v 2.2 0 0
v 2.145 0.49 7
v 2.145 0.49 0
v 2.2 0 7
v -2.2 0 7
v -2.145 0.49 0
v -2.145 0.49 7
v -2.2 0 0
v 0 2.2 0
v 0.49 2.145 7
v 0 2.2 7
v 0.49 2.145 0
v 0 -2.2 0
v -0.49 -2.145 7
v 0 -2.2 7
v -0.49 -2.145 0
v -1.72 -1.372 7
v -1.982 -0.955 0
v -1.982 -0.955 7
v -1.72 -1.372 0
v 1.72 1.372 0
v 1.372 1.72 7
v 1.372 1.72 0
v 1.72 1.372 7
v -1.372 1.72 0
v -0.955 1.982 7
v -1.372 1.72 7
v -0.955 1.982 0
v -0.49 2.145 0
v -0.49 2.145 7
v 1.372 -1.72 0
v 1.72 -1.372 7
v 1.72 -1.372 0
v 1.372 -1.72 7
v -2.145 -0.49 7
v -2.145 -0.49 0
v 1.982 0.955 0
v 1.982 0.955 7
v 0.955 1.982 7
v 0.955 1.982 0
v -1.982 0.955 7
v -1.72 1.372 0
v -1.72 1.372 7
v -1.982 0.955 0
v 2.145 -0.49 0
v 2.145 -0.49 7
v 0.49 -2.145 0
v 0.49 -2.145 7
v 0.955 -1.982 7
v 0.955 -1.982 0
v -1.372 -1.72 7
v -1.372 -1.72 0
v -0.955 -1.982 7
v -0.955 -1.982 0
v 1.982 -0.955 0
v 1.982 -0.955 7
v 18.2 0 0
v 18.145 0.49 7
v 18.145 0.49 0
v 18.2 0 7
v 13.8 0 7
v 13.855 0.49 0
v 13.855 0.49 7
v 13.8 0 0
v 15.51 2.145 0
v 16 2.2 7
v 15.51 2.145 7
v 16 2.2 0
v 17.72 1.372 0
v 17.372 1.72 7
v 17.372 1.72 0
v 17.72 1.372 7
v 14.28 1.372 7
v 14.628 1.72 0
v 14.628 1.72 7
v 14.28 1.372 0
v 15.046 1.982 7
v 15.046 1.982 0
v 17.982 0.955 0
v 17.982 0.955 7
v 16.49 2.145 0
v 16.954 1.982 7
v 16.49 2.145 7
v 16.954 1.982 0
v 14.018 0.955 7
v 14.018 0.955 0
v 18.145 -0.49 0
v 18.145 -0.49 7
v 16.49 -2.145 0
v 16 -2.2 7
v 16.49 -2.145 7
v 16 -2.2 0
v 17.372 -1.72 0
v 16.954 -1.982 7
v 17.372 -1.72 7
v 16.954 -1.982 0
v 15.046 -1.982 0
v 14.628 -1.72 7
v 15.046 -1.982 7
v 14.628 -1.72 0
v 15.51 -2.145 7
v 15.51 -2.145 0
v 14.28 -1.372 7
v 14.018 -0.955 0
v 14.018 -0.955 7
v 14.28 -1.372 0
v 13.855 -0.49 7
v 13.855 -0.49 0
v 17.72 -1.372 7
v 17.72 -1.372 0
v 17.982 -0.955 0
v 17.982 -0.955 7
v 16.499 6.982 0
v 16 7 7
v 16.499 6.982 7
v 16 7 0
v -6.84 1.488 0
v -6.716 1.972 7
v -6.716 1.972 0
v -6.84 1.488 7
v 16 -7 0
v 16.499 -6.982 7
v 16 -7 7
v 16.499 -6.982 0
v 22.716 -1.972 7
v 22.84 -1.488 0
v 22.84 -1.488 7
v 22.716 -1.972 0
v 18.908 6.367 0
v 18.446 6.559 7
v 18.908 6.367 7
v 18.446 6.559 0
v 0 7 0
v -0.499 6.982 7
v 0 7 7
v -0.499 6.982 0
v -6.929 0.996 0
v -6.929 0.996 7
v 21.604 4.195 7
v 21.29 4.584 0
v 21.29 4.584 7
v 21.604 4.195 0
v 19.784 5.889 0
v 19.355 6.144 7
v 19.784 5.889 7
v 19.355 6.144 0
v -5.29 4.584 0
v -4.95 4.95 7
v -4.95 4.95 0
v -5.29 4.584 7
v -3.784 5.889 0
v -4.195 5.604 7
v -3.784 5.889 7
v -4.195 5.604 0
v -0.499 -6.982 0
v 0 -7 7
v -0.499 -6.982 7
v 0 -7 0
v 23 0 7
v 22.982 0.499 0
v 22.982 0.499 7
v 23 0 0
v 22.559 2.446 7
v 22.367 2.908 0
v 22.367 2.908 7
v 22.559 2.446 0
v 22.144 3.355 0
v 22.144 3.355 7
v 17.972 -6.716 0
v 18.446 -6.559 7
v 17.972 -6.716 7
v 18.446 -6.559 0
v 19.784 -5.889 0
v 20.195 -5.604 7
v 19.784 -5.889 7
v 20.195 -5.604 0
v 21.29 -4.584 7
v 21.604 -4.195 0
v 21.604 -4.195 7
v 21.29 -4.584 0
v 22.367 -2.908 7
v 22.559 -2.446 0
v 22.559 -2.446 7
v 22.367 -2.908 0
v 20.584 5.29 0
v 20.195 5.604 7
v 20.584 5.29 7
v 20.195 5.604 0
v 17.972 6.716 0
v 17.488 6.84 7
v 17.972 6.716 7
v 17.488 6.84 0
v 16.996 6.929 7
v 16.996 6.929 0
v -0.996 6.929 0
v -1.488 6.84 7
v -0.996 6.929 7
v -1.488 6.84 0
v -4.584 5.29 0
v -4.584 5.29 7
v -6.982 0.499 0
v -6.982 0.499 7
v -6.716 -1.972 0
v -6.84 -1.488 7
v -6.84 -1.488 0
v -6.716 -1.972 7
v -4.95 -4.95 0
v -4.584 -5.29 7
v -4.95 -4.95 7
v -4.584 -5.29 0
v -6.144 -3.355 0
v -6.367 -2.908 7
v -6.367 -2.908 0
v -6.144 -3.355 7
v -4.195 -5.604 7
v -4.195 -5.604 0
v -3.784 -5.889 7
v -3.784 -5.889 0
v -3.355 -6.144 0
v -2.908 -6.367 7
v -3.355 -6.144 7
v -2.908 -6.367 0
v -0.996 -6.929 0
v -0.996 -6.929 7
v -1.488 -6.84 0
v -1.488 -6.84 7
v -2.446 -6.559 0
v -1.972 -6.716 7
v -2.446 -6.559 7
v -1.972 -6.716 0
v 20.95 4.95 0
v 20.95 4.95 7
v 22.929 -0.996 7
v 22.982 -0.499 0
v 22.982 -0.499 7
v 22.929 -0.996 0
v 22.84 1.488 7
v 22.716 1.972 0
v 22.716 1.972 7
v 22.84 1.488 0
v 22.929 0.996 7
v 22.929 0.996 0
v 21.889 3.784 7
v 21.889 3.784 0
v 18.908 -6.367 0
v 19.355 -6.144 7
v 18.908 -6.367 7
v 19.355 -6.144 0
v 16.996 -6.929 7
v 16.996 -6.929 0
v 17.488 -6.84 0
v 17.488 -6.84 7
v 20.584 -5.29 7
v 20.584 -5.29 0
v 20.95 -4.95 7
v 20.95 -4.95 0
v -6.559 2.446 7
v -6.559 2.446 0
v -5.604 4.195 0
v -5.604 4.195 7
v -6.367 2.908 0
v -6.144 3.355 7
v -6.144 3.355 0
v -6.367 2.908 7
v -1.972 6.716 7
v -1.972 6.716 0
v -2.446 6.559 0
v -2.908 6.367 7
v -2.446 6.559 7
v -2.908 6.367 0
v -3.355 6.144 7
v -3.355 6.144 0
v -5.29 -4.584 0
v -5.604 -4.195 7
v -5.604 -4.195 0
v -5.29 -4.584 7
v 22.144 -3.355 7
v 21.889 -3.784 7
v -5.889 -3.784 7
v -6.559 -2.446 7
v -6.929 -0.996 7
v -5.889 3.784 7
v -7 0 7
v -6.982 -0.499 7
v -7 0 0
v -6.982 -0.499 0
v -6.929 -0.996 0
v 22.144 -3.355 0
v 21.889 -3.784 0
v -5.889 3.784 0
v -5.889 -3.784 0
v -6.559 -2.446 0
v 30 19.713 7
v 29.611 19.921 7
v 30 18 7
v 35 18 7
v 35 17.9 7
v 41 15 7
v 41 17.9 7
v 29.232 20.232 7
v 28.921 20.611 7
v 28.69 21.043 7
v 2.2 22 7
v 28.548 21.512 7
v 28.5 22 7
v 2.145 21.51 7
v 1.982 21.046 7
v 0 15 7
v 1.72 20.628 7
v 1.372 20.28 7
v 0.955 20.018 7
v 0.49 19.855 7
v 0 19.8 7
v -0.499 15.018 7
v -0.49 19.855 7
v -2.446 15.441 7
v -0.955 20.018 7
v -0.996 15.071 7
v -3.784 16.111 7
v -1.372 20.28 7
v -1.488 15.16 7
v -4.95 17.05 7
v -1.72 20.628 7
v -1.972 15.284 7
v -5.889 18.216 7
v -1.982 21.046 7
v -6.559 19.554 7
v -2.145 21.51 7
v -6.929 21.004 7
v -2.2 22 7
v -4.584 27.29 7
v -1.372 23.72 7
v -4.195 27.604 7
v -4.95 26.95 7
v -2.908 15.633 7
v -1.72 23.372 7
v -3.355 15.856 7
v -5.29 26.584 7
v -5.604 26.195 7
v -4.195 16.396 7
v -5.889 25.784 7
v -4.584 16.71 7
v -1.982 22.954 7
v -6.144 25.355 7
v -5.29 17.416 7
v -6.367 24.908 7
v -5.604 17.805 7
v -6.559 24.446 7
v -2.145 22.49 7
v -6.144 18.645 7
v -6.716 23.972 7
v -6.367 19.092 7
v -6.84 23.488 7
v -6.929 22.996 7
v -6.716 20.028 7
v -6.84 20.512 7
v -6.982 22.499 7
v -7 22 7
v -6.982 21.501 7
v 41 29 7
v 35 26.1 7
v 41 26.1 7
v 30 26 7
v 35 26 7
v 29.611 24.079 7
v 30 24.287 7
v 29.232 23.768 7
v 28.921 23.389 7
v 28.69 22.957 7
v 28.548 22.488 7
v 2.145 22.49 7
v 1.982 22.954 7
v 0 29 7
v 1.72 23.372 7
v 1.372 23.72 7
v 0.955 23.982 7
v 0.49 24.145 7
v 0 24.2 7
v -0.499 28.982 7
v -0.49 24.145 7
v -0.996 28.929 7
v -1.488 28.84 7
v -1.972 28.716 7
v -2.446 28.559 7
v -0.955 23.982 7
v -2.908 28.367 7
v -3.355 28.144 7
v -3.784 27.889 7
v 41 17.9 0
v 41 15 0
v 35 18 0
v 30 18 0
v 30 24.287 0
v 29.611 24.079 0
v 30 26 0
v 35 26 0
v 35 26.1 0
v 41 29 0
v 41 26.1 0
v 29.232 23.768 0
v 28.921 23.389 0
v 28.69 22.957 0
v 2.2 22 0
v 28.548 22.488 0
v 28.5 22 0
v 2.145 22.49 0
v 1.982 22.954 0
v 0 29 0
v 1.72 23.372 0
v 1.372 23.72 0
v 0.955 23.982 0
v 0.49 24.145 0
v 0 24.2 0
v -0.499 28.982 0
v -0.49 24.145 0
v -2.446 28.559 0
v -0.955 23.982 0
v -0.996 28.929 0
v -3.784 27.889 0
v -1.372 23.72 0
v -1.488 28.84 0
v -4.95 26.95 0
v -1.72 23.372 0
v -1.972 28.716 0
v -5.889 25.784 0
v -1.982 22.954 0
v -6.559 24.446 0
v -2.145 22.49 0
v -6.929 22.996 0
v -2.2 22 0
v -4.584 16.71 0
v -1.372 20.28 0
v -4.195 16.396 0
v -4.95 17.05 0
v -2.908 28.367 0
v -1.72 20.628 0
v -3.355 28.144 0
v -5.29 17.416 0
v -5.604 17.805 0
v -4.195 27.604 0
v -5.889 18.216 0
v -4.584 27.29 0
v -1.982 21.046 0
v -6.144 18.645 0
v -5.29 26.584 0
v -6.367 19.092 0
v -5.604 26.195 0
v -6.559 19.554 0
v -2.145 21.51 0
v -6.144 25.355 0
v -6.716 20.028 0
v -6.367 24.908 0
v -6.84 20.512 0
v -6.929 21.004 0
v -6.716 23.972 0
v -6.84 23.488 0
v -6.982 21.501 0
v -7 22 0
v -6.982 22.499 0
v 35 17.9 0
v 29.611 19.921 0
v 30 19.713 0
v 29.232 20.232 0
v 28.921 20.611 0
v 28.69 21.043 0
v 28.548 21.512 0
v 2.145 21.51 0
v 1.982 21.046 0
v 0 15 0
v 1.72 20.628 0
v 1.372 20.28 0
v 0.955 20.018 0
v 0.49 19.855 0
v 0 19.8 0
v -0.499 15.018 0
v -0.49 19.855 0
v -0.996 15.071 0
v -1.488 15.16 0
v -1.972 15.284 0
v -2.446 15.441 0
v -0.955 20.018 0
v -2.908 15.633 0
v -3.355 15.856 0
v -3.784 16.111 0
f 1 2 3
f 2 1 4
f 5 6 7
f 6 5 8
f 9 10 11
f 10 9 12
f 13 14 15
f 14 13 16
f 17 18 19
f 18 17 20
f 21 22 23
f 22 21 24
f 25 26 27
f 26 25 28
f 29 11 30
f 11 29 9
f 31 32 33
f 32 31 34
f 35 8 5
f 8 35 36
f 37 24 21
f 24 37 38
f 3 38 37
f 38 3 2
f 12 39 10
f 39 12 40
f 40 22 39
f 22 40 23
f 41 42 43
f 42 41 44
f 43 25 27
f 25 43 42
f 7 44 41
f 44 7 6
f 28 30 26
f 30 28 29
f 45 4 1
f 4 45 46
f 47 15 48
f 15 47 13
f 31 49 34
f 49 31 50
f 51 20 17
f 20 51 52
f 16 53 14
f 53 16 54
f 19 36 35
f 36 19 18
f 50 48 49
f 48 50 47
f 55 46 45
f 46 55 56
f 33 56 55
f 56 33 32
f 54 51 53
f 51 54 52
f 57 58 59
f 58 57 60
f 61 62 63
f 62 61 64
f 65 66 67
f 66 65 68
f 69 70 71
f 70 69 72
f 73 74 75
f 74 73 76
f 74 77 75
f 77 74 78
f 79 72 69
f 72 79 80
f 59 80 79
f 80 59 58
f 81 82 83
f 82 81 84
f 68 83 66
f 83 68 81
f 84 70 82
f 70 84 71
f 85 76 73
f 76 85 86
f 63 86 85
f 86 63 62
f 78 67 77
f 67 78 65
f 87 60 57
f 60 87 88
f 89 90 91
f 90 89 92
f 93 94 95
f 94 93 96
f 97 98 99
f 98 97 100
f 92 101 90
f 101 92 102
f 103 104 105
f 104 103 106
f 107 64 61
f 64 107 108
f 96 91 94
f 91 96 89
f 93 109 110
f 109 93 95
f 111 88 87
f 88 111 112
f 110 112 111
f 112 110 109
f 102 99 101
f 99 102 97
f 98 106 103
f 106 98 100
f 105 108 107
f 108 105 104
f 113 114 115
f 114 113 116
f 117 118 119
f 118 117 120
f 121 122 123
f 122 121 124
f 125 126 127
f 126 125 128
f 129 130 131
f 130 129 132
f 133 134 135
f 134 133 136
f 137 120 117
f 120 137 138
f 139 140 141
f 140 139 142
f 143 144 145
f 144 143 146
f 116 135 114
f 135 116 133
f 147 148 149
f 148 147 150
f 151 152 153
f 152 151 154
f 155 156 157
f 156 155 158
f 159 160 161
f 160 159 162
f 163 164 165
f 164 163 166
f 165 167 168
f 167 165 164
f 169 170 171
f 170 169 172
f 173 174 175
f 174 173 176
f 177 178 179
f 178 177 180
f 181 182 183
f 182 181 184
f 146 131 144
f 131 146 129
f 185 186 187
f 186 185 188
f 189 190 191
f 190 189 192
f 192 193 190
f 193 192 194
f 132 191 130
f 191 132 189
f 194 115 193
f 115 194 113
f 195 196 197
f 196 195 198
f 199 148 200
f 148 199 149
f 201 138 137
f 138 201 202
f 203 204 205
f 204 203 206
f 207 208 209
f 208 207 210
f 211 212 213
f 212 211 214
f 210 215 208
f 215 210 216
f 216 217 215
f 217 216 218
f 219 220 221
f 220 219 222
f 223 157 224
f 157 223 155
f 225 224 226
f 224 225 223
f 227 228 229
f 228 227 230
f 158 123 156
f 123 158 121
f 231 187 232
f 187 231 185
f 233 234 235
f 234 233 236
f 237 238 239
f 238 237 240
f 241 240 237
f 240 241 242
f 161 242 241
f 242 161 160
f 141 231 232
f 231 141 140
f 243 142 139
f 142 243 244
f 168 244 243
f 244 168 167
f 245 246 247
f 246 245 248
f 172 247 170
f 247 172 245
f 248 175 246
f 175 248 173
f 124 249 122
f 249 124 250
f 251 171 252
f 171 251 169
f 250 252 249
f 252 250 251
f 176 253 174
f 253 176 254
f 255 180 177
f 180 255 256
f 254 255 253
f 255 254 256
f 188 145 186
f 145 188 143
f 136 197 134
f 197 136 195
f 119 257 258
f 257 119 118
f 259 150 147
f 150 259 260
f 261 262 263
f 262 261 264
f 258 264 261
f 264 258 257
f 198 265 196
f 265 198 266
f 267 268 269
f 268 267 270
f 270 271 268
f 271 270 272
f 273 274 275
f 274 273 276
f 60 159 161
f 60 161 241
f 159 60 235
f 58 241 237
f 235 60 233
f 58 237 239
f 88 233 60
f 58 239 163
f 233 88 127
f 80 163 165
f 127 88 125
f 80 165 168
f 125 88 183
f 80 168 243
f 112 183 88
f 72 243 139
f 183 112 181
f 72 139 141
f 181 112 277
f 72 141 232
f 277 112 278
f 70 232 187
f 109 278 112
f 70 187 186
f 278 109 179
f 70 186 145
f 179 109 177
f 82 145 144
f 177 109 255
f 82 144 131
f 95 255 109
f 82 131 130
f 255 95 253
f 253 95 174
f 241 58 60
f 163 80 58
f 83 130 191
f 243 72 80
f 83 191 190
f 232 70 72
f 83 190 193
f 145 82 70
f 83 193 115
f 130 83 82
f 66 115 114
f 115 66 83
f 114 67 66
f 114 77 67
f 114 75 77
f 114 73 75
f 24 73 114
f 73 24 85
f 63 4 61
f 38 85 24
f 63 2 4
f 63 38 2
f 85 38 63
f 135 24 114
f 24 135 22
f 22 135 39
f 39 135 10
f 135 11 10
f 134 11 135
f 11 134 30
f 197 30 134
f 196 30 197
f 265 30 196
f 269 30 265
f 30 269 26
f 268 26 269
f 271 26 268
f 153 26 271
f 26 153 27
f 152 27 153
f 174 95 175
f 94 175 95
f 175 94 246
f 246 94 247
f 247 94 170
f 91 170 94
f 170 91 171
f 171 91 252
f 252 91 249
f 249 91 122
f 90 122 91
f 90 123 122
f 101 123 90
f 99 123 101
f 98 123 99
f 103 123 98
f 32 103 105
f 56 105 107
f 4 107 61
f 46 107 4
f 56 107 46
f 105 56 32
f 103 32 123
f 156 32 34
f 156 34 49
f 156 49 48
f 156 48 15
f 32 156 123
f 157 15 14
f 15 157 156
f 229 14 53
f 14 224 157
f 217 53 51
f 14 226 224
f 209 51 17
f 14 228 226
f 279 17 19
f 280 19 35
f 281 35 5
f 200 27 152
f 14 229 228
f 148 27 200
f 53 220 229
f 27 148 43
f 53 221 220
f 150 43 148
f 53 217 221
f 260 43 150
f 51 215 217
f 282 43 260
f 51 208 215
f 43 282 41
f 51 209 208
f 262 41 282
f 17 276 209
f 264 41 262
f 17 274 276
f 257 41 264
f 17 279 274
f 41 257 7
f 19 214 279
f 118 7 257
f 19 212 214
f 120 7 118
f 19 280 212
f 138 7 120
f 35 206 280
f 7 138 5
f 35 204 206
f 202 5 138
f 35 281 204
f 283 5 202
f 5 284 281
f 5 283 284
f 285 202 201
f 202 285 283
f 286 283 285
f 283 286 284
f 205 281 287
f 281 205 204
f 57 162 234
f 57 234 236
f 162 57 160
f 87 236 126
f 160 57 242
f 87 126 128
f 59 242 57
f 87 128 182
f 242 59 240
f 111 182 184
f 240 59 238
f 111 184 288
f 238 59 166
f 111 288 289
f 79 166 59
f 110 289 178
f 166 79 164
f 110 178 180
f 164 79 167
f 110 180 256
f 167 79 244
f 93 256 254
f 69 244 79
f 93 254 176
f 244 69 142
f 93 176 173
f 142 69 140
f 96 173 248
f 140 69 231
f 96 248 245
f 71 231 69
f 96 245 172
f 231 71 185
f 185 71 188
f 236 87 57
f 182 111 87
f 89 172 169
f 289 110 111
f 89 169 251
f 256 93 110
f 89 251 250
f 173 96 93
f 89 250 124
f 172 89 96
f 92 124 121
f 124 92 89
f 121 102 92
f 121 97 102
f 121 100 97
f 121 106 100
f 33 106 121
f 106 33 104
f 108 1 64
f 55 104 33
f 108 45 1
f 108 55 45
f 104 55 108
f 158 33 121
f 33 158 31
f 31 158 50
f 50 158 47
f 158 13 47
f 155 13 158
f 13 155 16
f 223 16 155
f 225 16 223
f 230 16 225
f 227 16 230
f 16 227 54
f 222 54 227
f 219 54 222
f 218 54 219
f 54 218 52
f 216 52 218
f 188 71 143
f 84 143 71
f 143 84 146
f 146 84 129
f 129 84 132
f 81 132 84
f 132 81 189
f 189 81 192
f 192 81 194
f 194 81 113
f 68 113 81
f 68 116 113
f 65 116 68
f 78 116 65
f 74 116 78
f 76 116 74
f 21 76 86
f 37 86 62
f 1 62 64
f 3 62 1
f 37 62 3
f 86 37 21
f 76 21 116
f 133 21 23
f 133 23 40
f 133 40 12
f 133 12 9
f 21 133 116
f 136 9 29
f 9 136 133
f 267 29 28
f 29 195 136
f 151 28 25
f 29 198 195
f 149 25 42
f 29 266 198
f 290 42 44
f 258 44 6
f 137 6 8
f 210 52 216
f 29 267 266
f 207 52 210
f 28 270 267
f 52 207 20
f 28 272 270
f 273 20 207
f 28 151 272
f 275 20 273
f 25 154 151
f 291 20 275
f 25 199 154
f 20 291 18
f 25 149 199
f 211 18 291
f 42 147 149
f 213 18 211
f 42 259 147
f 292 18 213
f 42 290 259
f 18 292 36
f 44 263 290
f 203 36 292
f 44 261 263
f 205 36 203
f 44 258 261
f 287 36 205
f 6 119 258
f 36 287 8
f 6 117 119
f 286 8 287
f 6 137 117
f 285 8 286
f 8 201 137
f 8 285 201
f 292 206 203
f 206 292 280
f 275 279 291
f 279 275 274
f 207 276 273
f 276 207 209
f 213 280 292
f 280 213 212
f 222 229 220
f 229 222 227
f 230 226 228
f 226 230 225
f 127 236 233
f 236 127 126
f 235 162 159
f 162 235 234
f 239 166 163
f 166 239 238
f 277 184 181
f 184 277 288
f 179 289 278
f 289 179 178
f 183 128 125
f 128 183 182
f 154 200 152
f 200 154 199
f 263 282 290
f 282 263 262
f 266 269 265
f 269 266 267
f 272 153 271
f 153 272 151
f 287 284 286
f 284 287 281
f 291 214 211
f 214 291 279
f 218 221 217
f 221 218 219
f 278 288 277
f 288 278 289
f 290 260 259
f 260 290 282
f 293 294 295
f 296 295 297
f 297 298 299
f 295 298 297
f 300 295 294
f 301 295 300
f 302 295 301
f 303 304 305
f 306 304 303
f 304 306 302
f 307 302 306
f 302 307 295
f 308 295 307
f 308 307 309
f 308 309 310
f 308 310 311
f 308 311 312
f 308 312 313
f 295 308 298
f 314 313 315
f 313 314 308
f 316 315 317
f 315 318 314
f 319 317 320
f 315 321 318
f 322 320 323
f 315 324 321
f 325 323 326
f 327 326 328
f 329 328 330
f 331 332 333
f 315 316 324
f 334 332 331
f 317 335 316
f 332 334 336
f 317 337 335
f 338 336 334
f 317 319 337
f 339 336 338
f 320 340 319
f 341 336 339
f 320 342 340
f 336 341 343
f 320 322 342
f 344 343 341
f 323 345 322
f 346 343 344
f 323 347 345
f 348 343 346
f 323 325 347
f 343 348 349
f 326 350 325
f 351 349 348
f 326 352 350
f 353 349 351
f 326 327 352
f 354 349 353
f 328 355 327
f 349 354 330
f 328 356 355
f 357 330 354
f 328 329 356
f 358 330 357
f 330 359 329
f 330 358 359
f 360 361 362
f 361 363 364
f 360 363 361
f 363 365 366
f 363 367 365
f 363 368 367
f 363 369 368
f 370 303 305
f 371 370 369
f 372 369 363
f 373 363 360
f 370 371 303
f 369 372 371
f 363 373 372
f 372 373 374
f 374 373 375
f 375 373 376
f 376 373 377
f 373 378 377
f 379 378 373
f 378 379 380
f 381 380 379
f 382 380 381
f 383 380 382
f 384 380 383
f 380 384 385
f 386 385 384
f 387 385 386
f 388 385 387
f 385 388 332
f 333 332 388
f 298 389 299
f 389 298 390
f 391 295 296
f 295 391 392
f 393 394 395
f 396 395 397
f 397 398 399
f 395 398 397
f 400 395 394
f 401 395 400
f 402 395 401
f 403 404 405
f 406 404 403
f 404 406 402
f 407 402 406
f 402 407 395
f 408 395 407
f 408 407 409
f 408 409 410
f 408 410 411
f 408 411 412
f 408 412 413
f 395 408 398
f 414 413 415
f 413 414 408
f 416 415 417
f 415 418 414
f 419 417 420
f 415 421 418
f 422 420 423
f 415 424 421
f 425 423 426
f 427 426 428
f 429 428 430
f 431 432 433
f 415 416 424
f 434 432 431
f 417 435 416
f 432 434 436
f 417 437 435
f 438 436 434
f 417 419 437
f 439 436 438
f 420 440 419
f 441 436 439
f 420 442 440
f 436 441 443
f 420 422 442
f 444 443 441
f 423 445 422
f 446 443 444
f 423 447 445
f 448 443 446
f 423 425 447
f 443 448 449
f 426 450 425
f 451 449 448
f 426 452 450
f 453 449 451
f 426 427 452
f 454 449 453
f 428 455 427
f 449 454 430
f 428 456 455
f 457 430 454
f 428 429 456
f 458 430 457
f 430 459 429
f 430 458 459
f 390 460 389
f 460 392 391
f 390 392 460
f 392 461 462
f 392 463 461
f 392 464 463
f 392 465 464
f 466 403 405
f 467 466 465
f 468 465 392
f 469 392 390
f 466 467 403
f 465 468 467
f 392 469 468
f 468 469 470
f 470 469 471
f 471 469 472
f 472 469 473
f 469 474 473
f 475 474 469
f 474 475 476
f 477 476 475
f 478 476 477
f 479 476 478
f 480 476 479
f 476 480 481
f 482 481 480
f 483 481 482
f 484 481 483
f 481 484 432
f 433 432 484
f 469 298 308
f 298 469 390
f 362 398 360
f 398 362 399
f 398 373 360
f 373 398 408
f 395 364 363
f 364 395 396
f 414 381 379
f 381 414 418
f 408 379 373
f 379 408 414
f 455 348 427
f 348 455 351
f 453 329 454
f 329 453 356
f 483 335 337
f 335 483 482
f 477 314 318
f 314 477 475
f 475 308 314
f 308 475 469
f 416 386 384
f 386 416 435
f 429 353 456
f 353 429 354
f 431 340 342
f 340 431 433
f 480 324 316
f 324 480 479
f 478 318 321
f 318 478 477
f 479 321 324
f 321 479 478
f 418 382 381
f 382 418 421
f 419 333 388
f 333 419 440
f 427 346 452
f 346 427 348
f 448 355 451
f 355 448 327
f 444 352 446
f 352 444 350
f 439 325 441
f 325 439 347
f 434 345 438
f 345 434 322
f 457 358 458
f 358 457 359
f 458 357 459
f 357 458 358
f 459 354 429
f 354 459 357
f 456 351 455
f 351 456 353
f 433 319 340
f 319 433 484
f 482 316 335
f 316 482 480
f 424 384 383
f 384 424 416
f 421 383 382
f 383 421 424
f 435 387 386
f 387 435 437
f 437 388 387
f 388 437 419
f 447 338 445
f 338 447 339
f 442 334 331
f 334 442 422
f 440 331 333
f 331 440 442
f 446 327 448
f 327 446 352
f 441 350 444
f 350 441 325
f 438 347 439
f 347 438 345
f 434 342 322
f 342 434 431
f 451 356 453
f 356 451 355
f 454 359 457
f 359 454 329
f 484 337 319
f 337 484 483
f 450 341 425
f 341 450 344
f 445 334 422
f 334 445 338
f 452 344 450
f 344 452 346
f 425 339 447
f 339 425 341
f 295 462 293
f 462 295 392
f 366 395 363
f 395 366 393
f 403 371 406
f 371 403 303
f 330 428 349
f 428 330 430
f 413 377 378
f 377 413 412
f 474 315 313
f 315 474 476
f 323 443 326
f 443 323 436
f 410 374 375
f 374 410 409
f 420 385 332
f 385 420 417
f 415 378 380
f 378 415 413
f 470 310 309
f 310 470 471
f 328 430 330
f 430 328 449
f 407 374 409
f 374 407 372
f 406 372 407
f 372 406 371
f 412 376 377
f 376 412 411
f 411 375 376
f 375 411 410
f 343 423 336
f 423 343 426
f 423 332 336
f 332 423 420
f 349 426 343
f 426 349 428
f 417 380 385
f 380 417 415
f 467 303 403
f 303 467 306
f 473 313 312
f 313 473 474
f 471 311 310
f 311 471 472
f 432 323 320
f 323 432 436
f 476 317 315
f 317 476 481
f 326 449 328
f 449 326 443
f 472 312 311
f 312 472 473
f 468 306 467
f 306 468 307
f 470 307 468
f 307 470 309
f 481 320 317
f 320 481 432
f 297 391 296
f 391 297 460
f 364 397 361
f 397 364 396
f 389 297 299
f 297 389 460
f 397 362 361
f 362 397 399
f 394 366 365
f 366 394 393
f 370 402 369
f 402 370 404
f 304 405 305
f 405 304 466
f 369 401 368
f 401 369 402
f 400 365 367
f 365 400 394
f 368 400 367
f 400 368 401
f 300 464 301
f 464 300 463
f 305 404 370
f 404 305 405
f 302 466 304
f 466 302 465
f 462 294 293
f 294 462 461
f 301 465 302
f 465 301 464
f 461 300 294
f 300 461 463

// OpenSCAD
// file: ../parametros.scad
// ============================================================
// parametros.scad — dimensões compartilhadas do robô
// Todas as medidas em milímetros.
// ============================================================

$fa = 4;
$fs = 0.5;

// ---------- tolerância de impressão ----------
folga = 0.3;        // folga padrão em furos/encaixes

// ---------- roda ----------
roda_d   = 36;      // diâmetro da roda
roda_w   = 10;      // largura da roda
eixo_d   = 4;       // diâmetro do eixo (haste impressa ou M4)
eixo_l   = 112;     // comprimento do eixo (haste + chanfro)

// ---------- base (chassi) ----------
base_w  = 84;       // largura (X)
base_d  = 74;       // profundidade (Y)
base_h  = 40;       // altura
parede  = 2.4;      // espessura das paredes (todas as peças)
eixo_z  = 12;       // altura do centro do eixo medida do fundo do chassi
roda_y  = roda_d/2 + 3;       // distância do centro do chassi ao centro de cada roda (Y)

// ---------- compartimento das pilhas ----------
// baia dimensionada para suporte comercial 4xAA (~62 x 58 x 17)
// ou para o suporte impresso em suporte_pilhas.scad
aa_bay_w = 72;
aa_bay_d = 58;
aa_dia   = 14.5;    // diâmetro da pilha AA
aa_comp  = 50.5;    // comprimento da pilha AA
suporte_z = eixo_z + 6 + 2*folga;
roda_x = base_w/2 + 2*folga + roda_w/2;
eixo_x = -roda_x - roda_w/2 - folga;

assert(2*roda_y >= roda_d + 2, "Rodas sem folga longitudinal");
assert(roda_y + 6 <= base_d/2, "Buchas fora do chassi");
assert(suporte_z + max(3 + aa_dia, 17) + folga <= base_h,
       "Pilhas acima do topo do chassi");
assert(eixo_z - eixo_d/2 - folga >= parede, "Eixo invade o fundo do chassi");
assert(eixo_x + eixo_l - 4 >= roda_x + roda_w/2 + folga + 2,
       "Eixo curto para as rodas e a trava");

// ---------- corpo (torso) ----------
// mesma pegada do chassi: as paredes alinham e as colunas de
// fixação ficam uma sobre a outra
corpo_w = 84;
corpo_d = 74;
corpo_h = 62;

// posição das colunas de fixação torso↔base (parafuso M3)
mont_x = 35;
mont_y = 32;

// ---------- micro:bit ----------
mb_w    = 51.6;     // largura da placa
mb_h    = 42;       // altura da placa
mb_prof = 11;       // profundidade do bolso (placa + componentes + fios)

// ---------- botões ----------
botao_d   = 12.4;   // botão de painel de 12 mm
botao_sep = 26;     // distância entre centros dos botões

// ---------- cabeça ----------
cab_w   = 58;
cab_d   = 50;
cab_h   = 48;
led_tam = 33;       // janela p/ matriz LED 8x8 (~32 mm) ou OLED pequeno
led_prof = 8;       // profundidade do alojamento do display

// ---------- braço ----------
braco_furo = 4.4;   // furo da articulação (parafuso M4 ou pino impresso)
braco_e    = 7;     // espessura dos segmentos do braço
brac_a     = 16;    // distância entre furos do segmento superior
brac_b     = 16;    // comprimento do antebraço até a palma
brac_r     = 7;     // raio das extremidades arredondadas

// ---------- auxiliar: caixa com cantos arredondados ----------
// caixa de w x d x h, centrada em X/Y, base em z = 0
module rbox(w, d, h, r = 3) {
    hull()
        for (x = [-1, 1], y = [-1, 1])
            translate([x * (w/2 - r), y * (d/2 - r), 0])
                cylinder(r = r, h = h);
}
// main file
// ============================================================
// braco.scad — braço articulado (imprimir 2x, peças iguais)
// Dois segmentos com furos para articulação (parafuso M4 + porca
// ou pino impresso de pino.scad) e garra de 2 dedos na ponta.
// Imprimir deitado, como no modelo.
// ============================================================

include <../parametros.scad>
// brac_a, brac_b e brac_r vêm de parametros.scad

module braco_sup() {
    // segmento ombro→cotovelo
    difference() {
        hull()
            for (p = [0, brac_a])
                translate([p, 0, 0])
                    cylinder(r = brac_r, h = braco_e);
        for (p = [0, brac_a])
            translate([p, 0, -0.1])
                cylinder(d = braco_furo, h = braco_e + 0.2);
    }
}

module braco_inf() {
    // antebraço com garra de 2 dedos
    difference() {
        union() {
            hull()
                for (p = [0, brac_b])
                    translate([p, 0, 0])
                        cylinder(r = brac_r, h = braco_e);
            // palma
            translate([brac_b, -brac_r, 0])
                cube([2 * brac_r, 2 * brac_r, braco_e]);
            // dedos da garra
            for (y = [-1, 1])
                translate([brac_b + 2 * brac_r - 1,
                           y * (brac_r - 1.5) - 1.5, 0])
                    cube([12, 3, braco_e]);
        }
        // furo da articulação (cotovelo)
        translate([0, 0, -0.1])
            cylinder(d = braco_furo, h = braco_e + 0.2);
        // abertura entre os dedos da garra
        translate([brac_b + 2 * brac_r + 9, 0, braco_e/2])
            cube([8, 8.2, braco_e + 0.2], center = true);
        // boca da garra (entalhe interno)
        translate([brac_b + 2 * brac_r + 1, 0, -0.1])
            cylinder(d = 5, h = braco_e + 0.2);
    }
}

module braco() {
    // layout de impressão: duas peças lado a lado
    braco_sup();
    translate([0, 22, 0]) braco_inf();
}

braco();
